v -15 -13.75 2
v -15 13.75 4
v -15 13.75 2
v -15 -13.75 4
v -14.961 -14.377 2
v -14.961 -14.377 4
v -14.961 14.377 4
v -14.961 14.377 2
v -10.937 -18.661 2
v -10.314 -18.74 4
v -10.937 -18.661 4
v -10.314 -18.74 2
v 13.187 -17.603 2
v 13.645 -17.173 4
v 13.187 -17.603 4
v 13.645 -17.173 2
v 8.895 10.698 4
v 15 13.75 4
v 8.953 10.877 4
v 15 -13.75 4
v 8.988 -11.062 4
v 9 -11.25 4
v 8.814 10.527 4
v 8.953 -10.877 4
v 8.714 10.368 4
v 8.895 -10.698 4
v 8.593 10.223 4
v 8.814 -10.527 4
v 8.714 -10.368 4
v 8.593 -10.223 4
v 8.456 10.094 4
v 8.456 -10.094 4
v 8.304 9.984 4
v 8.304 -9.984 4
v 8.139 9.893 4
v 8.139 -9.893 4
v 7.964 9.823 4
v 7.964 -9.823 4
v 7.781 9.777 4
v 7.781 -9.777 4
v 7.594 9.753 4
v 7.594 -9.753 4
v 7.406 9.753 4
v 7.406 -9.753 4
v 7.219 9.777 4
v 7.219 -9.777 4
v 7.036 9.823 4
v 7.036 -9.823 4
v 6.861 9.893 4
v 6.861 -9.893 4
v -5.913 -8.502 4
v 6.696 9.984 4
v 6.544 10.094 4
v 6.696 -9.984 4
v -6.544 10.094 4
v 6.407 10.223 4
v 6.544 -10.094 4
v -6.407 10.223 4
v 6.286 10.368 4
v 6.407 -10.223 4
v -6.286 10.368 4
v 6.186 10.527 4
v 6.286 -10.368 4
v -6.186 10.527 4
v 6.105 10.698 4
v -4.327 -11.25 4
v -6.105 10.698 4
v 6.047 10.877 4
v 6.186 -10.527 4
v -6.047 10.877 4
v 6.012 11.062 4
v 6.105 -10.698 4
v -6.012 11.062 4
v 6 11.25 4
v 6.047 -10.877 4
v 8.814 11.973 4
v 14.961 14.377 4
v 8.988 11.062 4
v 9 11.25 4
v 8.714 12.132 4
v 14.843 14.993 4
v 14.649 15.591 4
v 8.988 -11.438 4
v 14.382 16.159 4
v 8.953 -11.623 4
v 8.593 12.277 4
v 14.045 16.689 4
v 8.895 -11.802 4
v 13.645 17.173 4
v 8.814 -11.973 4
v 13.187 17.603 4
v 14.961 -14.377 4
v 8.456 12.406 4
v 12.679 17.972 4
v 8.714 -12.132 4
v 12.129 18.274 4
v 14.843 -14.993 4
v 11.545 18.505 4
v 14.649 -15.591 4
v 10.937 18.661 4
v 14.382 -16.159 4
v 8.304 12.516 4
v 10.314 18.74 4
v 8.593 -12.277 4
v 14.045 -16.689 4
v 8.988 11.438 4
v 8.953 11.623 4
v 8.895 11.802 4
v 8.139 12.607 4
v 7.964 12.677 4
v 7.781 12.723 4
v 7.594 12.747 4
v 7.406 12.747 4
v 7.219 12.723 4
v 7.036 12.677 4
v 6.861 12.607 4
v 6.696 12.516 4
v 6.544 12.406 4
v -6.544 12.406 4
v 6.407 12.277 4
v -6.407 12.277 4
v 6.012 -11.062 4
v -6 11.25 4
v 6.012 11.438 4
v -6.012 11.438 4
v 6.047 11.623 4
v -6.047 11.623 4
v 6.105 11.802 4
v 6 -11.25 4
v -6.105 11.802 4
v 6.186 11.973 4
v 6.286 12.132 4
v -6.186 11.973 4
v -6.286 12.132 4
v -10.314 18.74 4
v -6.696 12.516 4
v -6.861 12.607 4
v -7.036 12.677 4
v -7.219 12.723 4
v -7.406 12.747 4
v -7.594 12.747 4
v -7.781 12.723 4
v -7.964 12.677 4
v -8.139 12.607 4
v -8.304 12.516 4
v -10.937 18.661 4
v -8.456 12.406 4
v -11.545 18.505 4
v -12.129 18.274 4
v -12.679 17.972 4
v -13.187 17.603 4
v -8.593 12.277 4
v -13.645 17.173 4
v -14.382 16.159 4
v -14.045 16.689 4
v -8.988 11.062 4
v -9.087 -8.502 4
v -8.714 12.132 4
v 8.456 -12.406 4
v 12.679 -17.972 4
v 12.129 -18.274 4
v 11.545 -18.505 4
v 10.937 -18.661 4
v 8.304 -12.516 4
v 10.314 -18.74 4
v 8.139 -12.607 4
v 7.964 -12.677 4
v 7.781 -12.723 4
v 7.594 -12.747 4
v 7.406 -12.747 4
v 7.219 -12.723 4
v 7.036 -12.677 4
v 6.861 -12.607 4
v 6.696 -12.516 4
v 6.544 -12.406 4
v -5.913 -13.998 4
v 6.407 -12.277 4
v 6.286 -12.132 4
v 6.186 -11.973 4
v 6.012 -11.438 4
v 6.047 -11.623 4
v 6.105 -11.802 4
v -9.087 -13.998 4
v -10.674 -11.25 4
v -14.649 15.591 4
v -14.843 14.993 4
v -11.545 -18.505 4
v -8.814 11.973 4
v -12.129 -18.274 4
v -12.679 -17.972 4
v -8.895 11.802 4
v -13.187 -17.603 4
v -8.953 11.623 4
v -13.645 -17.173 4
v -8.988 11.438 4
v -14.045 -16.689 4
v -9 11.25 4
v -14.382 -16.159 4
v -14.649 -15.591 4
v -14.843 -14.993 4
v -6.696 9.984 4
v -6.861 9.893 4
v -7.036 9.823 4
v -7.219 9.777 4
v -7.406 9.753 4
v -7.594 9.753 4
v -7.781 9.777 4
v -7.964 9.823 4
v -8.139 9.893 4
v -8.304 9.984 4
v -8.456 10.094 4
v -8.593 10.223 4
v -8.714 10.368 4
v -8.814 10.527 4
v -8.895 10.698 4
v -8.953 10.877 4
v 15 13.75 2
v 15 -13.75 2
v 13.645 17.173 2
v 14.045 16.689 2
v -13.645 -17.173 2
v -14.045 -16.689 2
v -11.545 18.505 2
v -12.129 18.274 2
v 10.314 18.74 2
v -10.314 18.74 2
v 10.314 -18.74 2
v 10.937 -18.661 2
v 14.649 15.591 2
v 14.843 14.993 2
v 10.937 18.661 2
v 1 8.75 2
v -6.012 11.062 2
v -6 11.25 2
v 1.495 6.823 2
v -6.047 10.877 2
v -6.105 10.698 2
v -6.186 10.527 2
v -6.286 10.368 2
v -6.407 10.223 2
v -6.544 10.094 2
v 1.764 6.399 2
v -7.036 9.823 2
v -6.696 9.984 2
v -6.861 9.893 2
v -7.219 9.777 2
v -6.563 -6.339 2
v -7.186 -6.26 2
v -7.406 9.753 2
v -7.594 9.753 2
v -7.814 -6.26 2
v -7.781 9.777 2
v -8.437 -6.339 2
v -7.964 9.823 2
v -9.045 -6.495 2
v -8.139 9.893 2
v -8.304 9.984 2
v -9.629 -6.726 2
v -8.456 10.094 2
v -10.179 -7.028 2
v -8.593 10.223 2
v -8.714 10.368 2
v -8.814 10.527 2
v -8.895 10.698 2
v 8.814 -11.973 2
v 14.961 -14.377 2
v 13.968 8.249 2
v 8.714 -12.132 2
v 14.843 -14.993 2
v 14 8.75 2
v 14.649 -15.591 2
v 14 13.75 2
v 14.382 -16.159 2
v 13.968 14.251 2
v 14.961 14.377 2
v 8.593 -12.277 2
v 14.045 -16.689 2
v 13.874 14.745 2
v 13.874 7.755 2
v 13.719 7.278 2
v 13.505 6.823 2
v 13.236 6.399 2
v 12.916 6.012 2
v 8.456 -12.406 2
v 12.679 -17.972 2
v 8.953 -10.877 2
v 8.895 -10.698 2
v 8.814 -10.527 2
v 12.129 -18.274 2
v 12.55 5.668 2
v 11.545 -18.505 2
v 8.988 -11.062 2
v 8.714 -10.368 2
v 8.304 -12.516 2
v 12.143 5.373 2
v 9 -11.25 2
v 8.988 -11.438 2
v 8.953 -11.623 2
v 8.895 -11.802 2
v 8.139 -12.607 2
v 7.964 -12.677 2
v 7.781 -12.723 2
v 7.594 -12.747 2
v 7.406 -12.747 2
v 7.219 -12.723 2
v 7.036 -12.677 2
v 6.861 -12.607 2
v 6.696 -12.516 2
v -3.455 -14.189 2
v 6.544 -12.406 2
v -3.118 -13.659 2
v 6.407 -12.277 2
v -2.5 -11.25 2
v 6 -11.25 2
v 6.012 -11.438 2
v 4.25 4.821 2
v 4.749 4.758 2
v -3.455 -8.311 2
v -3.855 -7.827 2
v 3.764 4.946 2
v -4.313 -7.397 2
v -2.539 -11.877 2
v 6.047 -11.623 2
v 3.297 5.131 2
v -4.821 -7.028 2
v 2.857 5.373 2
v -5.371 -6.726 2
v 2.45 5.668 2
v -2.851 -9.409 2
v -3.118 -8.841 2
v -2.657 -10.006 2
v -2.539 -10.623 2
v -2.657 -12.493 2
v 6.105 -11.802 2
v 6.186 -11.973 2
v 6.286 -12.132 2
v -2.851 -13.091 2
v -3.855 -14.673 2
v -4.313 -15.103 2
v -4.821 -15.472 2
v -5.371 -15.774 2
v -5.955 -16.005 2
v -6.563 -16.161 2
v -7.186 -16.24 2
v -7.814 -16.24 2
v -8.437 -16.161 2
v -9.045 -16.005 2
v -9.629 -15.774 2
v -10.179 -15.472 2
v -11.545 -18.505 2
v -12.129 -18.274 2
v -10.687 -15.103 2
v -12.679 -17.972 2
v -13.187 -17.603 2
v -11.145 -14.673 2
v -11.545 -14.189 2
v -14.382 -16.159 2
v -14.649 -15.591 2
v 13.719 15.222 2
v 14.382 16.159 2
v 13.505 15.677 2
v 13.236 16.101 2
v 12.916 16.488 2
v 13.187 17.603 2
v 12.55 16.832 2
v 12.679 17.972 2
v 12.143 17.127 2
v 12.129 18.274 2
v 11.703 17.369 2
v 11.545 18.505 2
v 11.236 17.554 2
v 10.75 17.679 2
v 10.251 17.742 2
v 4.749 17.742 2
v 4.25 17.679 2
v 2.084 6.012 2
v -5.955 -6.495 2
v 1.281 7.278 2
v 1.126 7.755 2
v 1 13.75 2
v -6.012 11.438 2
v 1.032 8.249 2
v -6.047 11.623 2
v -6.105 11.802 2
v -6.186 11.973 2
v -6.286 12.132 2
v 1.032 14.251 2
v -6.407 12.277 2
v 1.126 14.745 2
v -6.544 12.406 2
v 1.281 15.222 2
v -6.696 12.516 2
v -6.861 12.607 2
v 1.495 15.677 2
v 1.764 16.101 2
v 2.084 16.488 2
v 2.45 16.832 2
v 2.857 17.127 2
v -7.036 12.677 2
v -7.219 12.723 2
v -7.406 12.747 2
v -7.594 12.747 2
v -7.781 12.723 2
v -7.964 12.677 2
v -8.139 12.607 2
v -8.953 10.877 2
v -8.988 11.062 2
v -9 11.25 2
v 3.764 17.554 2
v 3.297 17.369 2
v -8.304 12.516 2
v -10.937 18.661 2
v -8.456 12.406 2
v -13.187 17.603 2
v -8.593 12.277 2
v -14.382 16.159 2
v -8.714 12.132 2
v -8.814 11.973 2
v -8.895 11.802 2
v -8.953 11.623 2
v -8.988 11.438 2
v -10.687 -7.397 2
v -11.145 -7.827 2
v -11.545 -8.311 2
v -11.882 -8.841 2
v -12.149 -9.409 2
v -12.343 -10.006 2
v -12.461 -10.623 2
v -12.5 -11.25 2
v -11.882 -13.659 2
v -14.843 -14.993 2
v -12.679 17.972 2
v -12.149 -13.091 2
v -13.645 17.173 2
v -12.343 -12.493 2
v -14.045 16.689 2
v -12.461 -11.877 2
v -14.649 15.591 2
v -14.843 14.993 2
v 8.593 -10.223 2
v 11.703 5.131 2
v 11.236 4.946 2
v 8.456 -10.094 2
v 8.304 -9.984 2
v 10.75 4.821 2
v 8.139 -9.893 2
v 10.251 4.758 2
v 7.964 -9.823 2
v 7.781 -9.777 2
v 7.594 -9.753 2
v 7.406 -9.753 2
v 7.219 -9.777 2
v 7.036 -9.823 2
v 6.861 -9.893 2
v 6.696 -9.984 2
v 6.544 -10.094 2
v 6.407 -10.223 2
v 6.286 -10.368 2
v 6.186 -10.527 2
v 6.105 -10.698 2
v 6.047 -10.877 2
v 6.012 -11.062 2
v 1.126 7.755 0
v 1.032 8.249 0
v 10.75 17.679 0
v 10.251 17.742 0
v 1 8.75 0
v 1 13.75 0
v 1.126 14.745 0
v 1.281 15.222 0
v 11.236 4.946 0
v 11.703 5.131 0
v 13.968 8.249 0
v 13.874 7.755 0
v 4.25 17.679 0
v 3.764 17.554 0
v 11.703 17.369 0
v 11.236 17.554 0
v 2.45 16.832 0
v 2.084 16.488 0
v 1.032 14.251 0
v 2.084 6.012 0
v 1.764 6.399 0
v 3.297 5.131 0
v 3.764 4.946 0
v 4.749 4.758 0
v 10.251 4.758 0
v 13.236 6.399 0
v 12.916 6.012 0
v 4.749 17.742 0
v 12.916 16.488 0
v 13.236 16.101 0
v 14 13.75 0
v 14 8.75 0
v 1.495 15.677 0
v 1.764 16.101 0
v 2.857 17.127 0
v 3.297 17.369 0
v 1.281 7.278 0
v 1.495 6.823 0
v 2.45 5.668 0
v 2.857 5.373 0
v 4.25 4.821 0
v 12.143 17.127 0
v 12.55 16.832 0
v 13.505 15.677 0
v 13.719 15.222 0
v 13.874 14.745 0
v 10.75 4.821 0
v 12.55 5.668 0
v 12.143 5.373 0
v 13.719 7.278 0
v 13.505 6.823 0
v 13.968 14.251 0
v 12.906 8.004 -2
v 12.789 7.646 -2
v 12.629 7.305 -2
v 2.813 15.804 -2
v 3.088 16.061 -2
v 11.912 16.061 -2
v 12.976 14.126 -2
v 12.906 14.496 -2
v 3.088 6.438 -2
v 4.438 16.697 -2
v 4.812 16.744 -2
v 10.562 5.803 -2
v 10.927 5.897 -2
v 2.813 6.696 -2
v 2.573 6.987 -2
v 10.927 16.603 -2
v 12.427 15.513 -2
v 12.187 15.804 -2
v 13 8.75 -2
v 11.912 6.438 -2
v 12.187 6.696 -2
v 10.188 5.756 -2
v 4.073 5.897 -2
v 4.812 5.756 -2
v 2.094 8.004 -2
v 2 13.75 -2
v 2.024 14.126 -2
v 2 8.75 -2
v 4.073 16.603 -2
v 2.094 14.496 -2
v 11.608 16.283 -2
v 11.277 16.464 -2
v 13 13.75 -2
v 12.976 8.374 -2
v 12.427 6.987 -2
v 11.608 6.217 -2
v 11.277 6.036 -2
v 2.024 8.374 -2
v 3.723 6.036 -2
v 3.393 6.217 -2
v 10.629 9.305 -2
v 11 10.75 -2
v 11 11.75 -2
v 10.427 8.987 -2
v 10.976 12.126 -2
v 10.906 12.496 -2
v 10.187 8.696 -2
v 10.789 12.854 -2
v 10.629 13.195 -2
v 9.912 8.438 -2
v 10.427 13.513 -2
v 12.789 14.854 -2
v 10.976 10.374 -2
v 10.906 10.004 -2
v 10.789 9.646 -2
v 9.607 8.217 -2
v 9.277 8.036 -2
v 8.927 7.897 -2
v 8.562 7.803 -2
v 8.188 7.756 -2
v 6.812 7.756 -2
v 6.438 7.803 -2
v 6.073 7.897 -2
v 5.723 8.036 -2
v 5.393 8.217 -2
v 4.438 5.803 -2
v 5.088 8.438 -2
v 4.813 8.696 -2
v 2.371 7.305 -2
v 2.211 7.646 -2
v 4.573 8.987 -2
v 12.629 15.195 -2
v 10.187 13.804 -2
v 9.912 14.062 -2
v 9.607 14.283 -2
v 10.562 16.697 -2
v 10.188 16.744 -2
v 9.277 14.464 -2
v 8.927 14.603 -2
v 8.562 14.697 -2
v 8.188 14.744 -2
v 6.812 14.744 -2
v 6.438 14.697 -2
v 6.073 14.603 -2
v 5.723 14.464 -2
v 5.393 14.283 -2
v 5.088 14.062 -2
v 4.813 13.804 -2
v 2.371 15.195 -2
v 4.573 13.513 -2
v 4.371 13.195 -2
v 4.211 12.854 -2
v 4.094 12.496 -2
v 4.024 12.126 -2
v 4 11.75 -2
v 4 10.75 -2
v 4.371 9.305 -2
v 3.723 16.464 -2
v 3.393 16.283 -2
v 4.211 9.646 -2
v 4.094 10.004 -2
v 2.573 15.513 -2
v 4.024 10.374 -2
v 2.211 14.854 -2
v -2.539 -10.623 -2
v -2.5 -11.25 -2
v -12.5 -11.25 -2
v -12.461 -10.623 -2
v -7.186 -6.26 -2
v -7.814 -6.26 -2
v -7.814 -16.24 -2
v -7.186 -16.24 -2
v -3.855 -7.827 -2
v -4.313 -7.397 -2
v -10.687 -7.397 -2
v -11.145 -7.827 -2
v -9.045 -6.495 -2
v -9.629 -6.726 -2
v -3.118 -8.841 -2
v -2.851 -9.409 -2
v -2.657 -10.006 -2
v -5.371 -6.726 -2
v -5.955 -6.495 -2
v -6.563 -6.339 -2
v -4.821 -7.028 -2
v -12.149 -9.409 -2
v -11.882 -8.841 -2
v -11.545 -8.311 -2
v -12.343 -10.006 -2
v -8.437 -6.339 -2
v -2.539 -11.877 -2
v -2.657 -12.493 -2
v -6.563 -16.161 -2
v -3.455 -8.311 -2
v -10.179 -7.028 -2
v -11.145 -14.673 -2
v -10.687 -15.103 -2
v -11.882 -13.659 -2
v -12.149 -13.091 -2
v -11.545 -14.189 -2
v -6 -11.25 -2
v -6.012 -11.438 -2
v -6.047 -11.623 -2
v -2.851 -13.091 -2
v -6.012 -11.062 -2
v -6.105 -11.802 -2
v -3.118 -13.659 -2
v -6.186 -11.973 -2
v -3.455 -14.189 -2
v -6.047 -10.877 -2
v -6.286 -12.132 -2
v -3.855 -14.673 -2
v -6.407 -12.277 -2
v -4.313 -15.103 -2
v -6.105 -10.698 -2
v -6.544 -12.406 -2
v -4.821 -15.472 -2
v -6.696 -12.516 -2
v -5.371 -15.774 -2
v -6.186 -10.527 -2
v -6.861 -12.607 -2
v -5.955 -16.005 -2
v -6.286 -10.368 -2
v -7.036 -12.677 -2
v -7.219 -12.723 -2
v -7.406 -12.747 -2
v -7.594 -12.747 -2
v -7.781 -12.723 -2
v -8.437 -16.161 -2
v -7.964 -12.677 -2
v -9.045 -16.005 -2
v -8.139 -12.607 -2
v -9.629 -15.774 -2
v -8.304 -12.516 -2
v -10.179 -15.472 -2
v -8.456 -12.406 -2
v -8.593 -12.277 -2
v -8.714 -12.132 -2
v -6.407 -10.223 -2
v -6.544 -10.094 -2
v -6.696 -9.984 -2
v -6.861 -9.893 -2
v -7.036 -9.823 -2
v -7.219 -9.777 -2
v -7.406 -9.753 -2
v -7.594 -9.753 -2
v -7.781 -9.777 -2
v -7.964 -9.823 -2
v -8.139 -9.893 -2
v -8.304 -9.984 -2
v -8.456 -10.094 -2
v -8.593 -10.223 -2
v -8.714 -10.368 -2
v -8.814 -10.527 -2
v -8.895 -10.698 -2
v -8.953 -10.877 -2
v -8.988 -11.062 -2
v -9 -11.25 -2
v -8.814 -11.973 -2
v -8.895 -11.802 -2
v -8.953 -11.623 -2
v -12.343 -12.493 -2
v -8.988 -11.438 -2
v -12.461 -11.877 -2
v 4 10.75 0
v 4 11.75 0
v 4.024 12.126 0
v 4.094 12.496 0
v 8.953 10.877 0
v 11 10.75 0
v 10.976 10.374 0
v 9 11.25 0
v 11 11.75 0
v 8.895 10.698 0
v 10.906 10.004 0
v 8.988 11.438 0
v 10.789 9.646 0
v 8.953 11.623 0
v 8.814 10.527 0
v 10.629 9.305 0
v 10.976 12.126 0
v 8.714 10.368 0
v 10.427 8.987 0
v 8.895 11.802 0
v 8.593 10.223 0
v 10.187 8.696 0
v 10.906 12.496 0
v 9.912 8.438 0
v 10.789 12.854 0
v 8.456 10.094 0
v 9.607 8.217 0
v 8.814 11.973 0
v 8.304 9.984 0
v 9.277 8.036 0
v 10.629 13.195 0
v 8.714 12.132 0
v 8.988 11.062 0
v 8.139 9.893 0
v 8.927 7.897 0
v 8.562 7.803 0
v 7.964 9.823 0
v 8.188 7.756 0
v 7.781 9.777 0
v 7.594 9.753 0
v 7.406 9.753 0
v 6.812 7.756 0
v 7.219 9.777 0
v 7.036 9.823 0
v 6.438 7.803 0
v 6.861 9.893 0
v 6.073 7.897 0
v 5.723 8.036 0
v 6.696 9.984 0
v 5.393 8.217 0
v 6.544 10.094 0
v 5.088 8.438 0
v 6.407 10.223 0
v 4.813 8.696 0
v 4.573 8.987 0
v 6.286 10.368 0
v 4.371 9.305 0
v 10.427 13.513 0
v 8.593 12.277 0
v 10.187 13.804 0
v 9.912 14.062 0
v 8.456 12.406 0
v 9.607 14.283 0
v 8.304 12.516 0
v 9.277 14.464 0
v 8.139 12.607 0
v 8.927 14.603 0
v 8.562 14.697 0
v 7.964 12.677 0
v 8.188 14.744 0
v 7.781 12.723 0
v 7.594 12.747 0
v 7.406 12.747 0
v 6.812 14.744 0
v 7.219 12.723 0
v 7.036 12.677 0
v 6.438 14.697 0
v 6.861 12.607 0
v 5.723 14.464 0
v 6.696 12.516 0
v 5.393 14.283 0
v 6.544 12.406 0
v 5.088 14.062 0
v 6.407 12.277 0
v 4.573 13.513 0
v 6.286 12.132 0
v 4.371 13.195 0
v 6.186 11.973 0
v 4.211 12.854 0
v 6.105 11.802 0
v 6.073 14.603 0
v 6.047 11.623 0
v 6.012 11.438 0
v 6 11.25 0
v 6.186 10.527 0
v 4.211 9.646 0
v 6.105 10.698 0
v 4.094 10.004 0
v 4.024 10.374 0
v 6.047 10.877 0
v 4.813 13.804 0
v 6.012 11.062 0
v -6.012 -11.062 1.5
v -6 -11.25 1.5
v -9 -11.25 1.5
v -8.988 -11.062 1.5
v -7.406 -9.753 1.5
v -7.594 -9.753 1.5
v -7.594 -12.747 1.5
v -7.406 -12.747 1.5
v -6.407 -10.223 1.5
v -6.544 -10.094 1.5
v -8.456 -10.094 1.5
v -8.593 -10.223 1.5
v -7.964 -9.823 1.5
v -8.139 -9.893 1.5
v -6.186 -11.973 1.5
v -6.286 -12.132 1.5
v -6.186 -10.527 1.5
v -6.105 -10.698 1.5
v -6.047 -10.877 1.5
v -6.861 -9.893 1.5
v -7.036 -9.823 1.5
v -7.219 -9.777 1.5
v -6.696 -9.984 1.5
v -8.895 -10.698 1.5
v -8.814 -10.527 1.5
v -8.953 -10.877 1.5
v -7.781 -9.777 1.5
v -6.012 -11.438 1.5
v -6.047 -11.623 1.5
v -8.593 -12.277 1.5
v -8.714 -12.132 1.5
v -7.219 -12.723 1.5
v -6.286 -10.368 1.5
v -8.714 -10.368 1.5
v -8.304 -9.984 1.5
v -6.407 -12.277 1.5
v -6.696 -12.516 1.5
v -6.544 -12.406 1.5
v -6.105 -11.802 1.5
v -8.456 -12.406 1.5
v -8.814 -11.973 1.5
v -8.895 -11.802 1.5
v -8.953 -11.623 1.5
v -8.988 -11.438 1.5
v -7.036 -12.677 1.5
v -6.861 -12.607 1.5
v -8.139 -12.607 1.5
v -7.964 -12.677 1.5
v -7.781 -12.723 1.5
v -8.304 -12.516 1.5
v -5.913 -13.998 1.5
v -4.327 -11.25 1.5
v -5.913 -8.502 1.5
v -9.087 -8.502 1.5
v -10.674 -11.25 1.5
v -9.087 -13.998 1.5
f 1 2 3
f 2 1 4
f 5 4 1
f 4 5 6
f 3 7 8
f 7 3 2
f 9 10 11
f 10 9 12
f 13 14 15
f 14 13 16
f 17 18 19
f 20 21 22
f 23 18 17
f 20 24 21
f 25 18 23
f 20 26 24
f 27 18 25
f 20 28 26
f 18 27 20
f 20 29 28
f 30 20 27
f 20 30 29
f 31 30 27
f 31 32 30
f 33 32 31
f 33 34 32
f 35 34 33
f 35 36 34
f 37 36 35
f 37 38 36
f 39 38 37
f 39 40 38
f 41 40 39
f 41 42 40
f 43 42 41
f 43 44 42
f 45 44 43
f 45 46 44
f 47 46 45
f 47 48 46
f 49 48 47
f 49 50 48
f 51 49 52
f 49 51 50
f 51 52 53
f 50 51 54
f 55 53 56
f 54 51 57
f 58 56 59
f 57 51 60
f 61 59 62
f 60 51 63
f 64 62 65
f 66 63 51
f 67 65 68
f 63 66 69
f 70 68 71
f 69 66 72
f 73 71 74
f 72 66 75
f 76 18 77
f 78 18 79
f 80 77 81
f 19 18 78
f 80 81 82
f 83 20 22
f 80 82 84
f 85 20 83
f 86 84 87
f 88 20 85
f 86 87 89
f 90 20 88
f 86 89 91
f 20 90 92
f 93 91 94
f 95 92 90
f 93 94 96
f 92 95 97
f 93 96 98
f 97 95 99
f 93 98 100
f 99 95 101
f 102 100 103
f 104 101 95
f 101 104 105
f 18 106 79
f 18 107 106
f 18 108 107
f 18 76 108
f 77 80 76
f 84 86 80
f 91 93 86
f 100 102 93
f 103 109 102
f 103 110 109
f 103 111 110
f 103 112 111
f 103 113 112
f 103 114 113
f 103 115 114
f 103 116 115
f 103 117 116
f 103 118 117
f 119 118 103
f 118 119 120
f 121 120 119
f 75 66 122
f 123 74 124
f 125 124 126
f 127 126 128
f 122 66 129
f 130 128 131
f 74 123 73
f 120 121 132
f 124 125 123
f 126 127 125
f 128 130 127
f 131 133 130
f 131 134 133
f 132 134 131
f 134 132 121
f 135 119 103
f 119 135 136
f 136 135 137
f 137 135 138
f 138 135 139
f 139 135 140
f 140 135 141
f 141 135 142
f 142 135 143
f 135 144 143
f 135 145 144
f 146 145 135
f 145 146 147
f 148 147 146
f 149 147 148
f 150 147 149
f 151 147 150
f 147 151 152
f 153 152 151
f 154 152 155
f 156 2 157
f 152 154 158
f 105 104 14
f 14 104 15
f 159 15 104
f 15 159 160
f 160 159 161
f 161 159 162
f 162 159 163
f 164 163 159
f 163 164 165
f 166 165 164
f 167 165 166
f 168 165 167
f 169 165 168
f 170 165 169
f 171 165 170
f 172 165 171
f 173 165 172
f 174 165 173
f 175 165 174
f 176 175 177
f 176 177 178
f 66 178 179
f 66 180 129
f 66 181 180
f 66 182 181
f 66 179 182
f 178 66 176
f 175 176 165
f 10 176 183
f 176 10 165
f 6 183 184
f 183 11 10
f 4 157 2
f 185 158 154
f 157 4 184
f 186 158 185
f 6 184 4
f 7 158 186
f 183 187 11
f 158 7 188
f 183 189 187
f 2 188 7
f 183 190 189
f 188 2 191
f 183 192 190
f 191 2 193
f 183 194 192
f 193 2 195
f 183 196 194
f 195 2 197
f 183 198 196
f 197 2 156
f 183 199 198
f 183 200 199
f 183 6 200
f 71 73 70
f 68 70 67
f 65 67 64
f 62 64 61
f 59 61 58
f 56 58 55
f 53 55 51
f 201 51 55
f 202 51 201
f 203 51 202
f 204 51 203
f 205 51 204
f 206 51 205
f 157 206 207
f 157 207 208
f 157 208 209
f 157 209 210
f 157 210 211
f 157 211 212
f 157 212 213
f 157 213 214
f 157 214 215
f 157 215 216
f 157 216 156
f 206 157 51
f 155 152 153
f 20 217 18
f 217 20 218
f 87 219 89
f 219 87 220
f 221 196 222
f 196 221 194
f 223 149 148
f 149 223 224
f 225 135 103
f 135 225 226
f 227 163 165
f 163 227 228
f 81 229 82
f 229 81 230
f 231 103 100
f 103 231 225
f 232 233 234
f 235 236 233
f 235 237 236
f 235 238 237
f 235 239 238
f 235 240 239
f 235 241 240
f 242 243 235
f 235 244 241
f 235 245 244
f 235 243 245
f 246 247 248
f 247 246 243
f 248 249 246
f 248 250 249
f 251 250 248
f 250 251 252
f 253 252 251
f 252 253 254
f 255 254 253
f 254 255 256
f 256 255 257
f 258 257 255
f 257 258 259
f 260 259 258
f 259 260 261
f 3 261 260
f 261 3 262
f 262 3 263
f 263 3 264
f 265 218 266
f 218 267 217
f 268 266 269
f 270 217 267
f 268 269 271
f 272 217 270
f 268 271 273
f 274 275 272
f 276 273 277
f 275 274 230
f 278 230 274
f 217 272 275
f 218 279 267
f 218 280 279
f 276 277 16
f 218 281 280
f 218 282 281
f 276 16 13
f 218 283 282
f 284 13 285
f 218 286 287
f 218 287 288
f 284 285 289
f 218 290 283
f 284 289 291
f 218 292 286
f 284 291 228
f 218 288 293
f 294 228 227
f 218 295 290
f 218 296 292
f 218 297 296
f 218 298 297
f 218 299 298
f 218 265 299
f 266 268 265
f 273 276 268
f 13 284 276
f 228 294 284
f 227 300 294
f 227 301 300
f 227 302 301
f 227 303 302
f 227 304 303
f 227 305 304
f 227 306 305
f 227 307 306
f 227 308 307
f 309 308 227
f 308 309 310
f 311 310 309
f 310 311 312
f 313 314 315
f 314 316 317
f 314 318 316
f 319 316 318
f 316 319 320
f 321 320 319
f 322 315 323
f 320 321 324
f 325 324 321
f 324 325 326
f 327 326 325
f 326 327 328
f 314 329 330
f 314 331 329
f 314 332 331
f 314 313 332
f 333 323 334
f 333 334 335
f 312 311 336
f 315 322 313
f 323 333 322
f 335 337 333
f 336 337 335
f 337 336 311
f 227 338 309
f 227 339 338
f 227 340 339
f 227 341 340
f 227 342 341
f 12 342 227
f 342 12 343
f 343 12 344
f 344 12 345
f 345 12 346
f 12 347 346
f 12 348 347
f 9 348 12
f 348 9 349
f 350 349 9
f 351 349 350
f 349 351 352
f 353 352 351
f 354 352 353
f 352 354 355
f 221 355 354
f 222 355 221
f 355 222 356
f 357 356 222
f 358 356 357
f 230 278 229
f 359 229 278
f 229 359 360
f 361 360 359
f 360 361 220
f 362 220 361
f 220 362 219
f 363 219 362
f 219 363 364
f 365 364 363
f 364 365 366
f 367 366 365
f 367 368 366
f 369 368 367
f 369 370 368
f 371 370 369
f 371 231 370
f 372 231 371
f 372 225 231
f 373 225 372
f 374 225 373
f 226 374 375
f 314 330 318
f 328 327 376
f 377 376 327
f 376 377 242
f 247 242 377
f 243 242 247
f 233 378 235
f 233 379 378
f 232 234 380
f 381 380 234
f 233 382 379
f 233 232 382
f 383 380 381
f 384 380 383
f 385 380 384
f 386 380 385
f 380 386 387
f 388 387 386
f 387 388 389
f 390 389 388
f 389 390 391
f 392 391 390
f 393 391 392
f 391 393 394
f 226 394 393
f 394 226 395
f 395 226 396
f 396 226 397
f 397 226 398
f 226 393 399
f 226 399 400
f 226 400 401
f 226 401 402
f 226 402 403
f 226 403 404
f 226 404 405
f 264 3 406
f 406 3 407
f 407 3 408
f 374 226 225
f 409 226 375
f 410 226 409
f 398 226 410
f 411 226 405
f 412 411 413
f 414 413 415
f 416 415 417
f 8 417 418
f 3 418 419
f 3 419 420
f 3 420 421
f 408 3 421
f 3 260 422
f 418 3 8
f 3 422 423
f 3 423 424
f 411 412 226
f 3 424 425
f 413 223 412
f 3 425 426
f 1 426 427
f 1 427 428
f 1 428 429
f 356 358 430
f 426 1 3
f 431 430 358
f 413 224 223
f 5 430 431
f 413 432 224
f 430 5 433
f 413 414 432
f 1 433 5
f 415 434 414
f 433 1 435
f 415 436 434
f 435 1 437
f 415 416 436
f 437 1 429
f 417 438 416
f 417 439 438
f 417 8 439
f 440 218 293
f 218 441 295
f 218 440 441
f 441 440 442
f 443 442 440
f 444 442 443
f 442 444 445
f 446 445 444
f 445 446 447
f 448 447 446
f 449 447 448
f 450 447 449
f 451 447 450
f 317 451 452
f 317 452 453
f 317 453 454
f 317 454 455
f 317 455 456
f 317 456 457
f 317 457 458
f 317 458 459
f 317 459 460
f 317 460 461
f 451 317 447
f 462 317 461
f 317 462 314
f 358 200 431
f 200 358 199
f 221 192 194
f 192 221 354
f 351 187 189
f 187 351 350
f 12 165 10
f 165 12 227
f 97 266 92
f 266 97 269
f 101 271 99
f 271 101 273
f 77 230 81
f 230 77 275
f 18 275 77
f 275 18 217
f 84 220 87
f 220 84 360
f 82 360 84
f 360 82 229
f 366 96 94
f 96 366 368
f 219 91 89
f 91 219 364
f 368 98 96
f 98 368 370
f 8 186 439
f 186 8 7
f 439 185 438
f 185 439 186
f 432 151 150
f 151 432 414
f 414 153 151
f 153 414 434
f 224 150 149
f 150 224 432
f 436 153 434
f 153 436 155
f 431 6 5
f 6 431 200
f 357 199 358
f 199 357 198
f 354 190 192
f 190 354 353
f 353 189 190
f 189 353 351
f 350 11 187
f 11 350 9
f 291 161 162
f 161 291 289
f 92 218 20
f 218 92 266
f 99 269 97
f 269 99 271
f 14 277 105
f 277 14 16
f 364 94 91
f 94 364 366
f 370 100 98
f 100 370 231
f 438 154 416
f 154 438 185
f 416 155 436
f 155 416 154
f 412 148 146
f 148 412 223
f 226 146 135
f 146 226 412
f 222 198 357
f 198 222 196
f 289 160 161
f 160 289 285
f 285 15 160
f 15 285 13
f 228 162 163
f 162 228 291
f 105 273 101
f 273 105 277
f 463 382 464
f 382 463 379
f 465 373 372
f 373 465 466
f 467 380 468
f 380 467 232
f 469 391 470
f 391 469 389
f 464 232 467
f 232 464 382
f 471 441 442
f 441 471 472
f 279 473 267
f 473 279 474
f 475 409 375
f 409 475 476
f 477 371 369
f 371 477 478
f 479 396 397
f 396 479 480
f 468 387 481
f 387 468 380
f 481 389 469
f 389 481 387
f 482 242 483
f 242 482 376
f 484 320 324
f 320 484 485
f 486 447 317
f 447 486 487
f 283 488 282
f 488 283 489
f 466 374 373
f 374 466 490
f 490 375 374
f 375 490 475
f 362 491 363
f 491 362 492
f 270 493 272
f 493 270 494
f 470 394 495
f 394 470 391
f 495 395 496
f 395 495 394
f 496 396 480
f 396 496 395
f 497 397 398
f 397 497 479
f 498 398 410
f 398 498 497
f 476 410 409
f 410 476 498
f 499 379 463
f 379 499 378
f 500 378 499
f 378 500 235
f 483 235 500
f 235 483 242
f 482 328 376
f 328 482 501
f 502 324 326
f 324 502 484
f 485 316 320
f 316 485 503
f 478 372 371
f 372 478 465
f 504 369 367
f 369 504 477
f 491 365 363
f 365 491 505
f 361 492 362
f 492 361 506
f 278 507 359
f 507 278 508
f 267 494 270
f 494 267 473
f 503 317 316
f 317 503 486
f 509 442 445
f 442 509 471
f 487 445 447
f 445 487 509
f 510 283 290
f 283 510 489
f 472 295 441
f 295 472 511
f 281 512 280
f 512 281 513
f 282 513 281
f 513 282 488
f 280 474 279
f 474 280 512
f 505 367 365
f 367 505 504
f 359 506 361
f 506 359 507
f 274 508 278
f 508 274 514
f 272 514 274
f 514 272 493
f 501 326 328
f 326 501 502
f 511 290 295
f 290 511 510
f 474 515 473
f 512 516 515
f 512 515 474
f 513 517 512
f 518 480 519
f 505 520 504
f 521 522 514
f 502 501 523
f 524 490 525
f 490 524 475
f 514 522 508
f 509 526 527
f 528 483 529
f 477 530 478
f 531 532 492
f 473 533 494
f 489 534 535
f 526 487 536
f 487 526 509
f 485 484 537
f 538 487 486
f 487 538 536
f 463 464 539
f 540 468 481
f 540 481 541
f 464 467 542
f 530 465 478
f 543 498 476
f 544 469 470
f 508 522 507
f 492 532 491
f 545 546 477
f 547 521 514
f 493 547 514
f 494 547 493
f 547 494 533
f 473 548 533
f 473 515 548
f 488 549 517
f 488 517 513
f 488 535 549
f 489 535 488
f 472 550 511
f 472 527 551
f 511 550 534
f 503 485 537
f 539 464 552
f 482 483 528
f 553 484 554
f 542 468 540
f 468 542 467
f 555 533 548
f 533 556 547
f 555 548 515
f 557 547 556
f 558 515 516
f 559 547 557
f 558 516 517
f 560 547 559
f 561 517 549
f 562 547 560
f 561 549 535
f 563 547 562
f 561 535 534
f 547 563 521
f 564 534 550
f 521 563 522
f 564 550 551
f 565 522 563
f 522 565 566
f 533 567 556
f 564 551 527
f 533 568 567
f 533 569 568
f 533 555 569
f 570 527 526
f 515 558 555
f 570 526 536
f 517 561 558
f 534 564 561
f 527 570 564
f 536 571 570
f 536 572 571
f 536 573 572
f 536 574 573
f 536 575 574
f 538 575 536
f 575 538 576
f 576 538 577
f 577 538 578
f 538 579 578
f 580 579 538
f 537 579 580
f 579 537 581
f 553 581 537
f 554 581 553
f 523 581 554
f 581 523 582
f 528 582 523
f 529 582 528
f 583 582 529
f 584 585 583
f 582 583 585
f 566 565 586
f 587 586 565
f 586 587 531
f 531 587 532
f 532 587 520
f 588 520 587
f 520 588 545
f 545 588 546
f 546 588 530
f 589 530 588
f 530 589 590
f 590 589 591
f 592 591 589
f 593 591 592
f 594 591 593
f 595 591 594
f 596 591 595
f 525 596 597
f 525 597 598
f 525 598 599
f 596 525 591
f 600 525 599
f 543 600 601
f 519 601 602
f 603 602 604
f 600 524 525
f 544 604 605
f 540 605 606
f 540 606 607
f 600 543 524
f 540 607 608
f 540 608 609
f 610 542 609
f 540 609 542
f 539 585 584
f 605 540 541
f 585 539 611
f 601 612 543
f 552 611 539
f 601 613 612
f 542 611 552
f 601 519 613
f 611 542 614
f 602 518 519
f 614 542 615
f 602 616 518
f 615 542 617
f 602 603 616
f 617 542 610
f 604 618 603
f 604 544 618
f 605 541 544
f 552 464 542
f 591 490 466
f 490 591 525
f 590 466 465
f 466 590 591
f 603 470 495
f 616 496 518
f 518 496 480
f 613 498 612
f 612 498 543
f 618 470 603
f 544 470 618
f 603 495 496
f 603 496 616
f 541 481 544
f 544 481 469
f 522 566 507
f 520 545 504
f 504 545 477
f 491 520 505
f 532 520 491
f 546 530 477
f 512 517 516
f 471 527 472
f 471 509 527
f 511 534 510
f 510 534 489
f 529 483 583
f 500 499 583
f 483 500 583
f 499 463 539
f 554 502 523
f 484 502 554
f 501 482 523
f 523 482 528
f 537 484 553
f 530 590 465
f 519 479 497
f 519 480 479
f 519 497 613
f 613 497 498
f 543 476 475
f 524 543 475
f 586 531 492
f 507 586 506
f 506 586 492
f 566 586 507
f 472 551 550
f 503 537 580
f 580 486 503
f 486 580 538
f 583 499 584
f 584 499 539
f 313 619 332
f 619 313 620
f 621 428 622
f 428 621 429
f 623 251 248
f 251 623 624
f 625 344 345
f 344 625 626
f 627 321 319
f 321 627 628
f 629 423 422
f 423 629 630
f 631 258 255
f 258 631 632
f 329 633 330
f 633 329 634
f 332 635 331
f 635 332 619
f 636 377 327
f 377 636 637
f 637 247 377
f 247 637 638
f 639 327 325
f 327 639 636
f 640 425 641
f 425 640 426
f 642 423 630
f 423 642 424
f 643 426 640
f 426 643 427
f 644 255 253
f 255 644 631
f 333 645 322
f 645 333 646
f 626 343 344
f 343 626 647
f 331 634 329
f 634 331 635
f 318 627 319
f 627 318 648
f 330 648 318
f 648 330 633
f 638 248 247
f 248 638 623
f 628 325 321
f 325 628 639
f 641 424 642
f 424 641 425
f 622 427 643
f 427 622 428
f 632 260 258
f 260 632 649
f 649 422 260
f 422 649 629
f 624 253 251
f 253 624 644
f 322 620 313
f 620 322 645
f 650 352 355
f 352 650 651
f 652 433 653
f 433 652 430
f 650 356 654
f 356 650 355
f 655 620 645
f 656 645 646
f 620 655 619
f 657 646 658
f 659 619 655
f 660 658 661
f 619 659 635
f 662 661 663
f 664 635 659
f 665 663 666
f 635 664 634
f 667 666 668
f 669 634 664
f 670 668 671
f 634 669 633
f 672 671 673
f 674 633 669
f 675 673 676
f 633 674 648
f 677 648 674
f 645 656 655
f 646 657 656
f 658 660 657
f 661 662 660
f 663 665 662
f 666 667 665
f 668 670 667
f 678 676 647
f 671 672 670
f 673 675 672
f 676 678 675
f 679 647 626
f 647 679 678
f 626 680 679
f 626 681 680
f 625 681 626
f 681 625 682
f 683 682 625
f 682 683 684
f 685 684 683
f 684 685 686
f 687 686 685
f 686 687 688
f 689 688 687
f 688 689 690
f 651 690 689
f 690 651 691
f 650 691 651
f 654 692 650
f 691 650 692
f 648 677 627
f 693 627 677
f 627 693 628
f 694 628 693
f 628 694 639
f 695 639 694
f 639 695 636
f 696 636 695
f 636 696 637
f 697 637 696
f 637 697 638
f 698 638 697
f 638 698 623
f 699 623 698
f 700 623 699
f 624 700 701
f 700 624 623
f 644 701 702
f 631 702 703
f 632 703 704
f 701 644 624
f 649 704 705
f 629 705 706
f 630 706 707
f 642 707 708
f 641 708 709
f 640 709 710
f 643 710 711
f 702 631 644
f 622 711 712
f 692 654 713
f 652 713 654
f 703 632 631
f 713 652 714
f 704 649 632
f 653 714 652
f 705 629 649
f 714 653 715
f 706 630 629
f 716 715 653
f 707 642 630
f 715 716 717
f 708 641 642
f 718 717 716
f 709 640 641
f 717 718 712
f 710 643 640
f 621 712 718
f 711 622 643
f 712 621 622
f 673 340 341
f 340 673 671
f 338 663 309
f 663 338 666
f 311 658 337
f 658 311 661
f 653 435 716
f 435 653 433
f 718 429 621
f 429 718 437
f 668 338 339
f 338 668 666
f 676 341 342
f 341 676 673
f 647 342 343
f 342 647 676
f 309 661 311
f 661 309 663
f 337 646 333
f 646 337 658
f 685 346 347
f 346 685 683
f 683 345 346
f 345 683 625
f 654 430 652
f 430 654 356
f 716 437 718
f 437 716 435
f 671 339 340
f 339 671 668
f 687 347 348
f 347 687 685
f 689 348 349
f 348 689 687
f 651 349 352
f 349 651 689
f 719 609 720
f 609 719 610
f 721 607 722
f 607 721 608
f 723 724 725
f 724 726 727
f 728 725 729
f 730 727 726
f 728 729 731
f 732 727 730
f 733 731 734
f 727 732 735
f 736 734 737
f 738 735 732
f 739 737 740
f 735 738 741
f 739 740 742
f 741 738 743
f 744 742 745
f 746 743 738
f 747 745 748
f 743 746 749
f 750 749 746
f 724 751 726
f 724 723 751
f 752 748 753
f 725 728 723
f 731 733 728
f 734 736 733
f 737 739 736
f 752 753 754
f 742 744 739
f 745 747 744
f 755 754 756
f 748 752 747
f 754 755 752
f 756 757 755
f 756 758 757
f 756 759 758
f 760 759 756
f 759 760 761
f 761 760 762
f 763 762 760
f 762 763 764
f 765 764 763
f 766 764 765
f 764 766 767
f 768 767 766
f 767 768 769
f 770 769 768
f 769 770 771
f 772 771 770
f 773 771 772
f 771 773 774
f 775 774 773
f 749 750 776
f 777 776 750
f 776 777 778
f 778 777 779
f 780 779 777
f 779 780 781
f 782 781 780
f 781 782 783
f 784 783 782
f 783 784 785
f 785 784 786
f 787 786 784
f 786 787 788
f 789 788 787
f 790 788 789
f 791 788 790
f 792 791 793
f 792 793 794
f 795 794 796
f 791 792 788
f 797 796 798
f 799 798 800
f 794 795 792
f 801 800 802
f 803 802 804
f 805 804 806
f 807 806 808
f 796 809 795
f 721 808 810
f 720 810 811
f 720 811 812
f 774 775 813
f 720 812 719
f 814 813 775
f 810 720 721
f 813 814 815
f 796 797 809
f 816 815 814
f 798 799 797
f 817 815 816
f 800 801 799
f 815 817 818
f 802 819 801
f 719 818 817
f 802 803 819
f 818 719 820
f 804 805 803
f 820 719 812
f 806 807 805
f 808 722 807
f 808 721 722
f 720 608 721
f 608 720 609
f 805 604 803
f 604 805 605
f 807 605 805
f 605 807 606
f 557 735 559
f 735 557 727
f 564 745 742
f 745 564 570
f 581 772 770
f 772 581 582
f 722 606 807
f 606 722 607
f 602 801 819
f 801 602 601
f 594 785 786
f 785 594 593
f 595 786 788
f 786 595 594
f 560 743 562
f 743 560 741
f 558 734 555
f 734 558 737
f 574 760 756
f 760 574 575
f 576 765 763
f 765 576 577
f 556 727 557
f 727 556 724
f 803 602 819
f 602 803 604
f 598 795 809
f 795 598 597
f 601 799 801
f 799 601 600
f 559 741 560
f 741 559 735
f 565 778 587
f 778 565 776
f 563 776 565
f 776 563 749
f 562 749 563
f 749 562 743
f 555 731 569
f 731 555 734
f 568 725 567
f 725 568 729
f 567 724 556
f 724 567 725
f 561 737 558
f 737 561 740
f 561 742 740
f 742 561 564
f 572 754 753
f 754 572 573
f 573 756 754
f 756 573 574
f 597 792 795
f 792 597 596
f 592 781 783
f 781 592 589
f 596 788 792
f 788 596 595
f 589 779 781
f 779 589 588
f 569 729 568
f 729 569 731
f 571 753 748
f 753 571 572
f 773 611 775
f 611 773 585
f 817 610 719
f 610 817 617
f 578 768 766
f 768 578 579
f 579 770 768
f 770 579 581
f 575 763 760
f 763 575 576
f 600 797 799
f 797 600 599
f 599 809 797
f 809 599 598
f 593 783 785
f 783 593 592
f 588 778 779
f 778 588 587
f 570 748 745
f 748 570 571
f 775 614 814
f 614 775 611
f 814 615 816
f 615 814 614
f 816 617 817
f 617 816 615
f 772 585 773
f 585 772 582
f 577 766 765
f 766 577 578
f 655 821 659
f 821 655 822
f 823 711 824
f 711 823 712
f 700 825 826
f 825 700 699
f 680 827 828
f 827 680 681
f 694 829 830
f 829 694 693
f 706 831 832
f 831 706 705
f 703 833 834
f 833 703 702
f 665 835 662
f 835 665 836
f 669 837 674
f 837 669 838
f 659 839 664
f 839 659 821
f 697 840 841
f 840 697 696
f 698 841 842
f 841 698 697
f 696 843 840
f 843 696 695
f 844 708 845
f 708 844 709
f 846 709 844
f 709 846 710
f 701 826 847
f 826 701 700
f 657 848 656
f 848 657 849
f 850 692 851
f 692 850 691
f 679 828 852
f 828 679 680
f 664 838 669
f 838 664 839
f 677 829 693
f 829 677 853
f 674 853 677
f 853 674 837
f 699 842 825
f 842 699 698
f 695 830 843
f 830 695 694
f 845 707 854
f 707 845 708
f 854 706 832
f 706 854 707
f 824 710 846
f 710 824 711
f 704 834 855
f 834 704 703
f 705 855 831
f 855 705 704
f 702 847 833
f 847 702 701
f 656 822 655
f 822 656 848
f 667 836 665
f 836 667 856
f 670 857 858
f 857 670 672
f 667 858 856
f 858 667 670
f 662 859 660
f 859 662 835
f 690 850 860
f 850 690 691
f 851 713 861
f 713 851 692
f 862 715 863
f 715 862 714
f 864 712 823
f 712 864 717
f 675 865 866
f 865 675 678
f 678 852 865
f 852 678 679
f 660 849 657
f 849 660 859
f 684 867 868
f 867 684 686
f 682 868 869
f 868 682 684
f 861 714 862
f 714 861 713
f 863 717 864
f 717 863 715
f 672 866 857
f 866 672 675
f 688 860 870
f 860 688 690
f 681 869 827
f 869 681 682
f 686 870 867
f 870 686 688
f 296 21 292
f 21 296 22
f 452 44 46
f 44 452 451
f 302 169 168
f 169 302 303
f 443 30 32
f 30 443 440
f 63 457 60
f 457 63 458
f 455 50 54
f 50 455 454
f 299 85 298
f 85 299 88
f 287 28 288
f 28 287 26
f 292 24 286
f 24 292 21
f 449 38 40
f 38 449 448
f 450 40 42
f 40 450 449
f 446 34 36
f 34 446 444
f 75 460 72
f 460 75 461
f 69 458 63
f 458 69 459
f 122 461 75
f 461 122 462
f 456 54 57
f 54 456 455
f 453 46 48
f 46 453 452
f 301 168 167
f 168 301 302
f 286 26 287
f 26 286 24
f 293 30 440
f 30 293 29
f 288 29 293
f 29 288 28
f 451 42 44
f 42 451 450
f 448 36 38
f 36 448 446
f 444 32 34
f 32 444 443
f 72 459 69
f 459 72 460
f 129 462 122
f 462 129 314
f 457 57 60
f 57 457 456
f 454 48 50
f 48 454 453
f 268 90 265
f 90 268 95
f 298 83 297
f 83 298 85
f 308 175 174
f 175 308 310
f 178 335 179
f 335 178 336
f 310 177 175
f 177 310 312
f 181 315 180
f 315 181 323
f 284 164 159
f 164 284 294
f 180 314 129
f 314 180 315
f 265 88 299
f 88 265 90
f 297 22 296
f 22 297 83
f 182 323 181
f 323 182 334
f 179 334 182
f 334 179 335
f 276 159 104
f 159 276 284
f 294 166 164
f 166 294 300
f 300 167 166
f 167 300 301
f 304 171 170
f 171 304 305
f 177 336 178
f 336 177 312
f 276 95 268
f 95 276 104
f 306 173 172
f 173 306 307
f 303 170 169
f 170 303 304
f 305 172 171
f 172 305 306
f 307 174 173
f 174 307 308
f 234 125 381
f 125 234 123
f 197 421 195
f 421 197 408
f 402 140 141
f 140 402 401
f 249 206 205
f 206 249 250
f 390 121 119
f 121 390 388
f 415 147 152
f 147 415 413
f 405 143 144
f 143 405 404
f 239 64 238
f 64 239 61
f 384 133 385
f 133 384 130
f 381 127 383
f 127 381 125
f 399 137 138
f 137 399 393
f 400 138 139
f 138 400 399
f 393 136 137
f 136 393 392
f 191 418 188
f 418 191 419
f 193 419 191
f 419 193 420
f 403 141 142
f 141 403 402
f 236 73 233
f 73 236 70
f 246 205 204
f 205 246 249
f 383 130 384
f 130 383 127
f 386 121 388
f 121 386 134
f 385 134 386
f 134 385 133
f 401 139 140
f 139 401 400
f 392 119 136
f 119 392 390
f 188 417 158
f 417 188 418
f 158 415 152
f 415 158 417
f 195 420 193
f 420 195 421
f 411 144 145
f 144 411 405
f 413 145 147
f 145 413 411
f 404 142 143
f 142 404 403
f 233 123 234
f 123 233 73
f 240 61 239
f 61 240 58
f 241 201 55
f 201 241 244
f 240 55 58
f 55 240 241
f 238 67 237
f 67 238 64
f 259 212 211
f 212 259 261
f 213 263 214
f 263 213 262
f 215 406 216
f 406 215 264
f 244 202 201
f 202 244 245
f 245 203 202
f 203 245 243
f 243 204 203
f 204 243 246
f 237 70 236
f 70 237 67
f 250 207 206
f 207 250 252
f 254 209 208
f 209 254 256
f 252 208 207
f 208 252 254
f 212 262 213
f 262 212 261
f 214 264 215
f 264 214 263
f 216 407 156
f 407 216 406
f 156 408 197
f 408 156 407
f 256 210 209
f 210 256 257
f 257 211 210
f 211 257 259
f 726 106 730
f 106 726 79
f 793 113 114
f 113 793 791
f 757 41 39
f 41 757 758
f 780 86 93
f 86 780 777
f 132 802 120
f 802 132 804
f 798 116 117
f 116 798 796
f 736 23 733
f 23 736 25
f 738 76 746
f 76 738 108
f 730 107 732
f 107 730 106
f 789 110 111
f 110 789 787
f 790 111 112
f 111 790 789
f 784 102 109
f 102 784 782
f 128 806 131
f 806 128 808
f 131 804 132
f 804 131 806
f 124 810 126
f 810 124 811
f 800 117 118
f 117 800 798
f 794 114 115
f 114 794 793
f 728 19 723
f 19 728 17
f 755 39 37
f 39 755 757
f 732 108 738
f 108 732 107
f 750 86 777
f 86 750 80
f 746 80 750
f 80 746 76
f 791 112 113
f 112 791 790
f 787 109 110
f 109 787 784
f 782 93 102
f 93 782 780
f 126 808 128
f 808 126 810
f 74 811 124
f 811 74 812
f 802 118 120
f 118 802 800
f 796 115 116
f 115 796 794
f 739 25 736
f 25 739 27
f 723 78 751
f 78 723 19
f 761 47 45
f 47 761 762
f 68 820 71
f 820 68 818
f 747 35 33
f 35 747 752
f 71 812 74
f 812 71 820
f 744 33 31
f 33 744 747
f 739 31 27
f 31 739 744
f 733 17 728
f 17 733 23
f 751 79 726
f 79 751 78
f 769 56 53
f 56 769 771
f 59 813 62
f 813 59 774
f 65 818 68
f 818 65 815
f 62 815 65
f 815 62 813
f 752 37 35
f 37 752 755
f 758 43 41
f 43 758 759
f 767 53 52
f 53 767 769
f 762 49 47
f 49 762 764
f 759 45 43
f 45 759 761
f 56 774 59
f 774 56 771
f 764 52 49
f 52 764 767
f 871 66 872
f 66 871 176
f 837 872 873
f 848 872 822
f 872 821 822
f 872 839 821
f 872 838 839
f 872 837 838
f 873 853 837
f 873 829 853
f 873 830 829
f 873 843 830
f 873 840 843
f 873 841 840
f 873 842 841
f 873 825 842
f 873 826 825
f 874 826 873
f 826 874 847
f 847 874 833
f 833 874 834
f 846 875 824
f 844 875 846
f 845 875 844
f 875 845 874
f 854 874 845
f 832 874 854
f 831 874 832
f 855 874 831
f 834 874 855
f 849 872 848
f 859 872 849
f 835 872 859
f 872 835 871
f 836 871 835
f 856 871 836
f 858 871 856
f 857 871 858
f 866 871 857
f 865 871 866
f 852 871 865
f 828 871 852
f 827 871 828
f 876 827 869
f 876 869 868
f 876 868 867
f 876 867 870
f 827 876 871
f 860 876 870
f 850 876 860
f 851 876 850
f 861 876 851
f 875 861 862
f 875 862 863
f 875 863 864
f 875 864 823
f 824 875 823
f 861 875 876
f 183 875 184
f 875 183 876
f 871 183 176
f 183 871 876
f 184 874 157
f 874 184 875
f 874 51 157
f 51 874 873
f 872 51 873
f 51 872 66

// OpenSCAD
$fn = 50;


difference() {
	union() {
		translate(v = [0, 0, 2]) {
			rotate(a = [0, 0, 0]) {
				hull() {
					translate(v = [-10.0000000000, 13.7500000000, 0]) {
						rotate(a = [0, 0, 0]) {
							translate(v = [0, 0, 0]) {
								rotate(a = [0, 0, 0]) {
									cylinder(h = 2, r = 5);
								}
							}
						}
					}
					translate(v = [10.0000000000, 13.7500000000, 0]) {
						rotate(a = [0, 0, 0]) {
							translate(v = [0, 0, 0]) {
								rotate(a = [0, 0, 0]) {
									cylinder(h = 2, r = 5);
								}
							}
						}
					}
					translate(v = [-10.0000000000, -13.7500000000, 0]) {
						rotate(a = [0, 0, 0]) {
							translate(v = [0, 0, 0]) {
								rotate(a = [0, 0, 0]) {
									cylinder(h = 2, r = 5);
								}
							}
						}
					}
					translate(v = [10.0000000000, -13.7500000000, 0]) {
						rotate(a = [0, 0, 0]) {
							translate(v = [0, 0, 0]) {
								rotate(a = [0, 0, 0]) {
									cylinder(h = 2, r = 5);
								}
							}
						}
					}
				}
			}
		}
		translate(v = [7.5000000000, 11.2500000000, 0]) {
			rotate(a = [0, 0, 0]) {
				hull() {
					translate(v = [-2.5000000000, 2.5000000000, 0]) {
						rotate(a = [0, 0, 0]) {
							cylinder(h = 2, r1 = 4.0000000000, r2 = 4.0000000000);
						}
					}
					translate(v = [2.5000000000, 2.5000000000, 0]) {
						rotate(a = [0, 0, 0]) {
							cylinder(h = 2, r1 = 4.0000000000, r2 = 4.0000000000);
						}
					}
					translate(v = [-2.5000000000, -2.5000000000, 0]) {
						rotate(a = [0, 0, 0]) {
							cylinder(h = 2, r1 = 4.0000000000, r2 = 4.0000000000);
						}
					}
					translate(v = [2.5000000000, -2.5000000000, 0]) {
						rotate(a = [0, 0, 0]) {
							cylinder(h = 2, r1 = 4.0000000000, r2 = 4.0000000000);
						}
					}
				}
			}
		}
		translate(v = [7.5000000000, 11.2500000000, -2]) {
			rotate(a = [0, 180, 0]) {
				hull() {
					translate(v = [-2.5000000000, 2.5000000000, 0]) {
						rotate(a = [0, 180, 0]) {
							cylinder(h = 2, r1 = 3.0000000000, r2 = 4.0000000000);
						}
					}
					translate(v = [2.5000000000, 2.5000000000, 0]) {
						rotate(a = [0, 180, 0]) {
							cylinder(h = 2, r1 = 3.0000000000, r2 = 4.0000000000);
						}
					}
					translate(v = [-2.5000000000, -2.5000000000, 0]) {
						rotate(a = [0, 180, 0]) {
							cylinder(h = 2, r1 = 3.0000000000, r2 = 4.0000000000);
						}
					}
					translate(v = [2.5000000000, -2.5000000000, 0]) {
						rotate(a = [0, 180, 0]) {
							cylinder(h = 2, r1 = 3.0000000000, r2 = 4.0000000000);
						}
					}
				}
			}
		}
		translate(v = [-7.5000000000, -11.2500000000, -2.0000000000]) {
			rotate(a = [0, 0, 0]) {
				cylinder(h = 4, r = 5);
			}
		}
	}
	union() {
		translate(v = [7.5000000000, 11.2500000000, -2]) {
			rotate(a = [0, 0, 0]) {
				hull() {
					translate(v = [-0.5000000000, 0.5000000000, 0]) {
						rotate(a = [0, 0, 0]) {
							translate(v = [0, 0, 0]) {
								rotate(a = [0, 0, 0]) {
									cylinder(h = 2, r = 3.0000000000);
								}
							}
						}
					}
					translate(v = [0.5000000000, 0.5000000000, 0]) {
						rotate(a = [0, 0, 0]) {
							translate(v = [0, 0, 0]) {
								rotate(a = [0, 0, 0]) {
									cylinder(h = 2, r = 3.0000000000);
								}
							}
						}
					}
					translate(v = [-0.5000000000, -0.5000000000, 0]) {
						rotate(a = [0, 0, 0]) {
							translate(v = [0, 0, 0]) {
								rotate(a = [0, 0, 0]) {
									cylinder(h = 2, r = 3.0000000000);
								}
							}
						}
					}
					translate(v = [0.5000000000, -0.5000000000, 0]) {
						rotate(a = [0, 0, 0]) {
							translate(v = [0, 0, 0]) {
								rotate(a = [0, 0, 0]) {
									cylinder(h = 2, r = 3.0000000000);
								}
							}
						}
					}
				}
			}
		}
		translate(v = [-7.5000000000, -11.2500000000, -50]) {
			rotate(a = [0, 0, 0]) {
				cylinder(h = 100, r = 1.5000000000);
			}
		}
		translate(v = [7.5000000000, -11.2500000000, -50]) {
			rotate(a = [0, 0, 0]) {
				cylinder(h = 100, r = 1.5000000000);
			}
		}
		translate(v = [-7.5000000000, 11.2500000000, -50]) {
			rotate(a = [0, 0, 0]) {
				cylinder(h = 100, r = 1.5000000000);
			}
		}
		translate(v = [7.5000000000, 11.2500000000, -50]) {
			rotate(a = [0, 0, 0]) {
				cylinder(h = 100, r = 1.5000000000);
			}
		}
		translate(v = [-7.5000000000, -11.2500000000, 1.5000000000]) {
			rotate(a = [0, 0, 0]) {
				#translate(v = [0, 0, 0]) {
					rotate(a = [0, 0, 0]) {
						linear_extrude(height = 2.5000000000) {
							polygon(points = [[3.1735000000, 0.0000000000], [1.5867500000, 2.7483316189], [-1.5867500000, 2.7483316189], [-3.1735000000, 0.0000000000], [-1.5867500000, -2.7483316189], [1.5867500000, -2.7483316189]]);
						}
					}
				}
			}
		}
	}
}
